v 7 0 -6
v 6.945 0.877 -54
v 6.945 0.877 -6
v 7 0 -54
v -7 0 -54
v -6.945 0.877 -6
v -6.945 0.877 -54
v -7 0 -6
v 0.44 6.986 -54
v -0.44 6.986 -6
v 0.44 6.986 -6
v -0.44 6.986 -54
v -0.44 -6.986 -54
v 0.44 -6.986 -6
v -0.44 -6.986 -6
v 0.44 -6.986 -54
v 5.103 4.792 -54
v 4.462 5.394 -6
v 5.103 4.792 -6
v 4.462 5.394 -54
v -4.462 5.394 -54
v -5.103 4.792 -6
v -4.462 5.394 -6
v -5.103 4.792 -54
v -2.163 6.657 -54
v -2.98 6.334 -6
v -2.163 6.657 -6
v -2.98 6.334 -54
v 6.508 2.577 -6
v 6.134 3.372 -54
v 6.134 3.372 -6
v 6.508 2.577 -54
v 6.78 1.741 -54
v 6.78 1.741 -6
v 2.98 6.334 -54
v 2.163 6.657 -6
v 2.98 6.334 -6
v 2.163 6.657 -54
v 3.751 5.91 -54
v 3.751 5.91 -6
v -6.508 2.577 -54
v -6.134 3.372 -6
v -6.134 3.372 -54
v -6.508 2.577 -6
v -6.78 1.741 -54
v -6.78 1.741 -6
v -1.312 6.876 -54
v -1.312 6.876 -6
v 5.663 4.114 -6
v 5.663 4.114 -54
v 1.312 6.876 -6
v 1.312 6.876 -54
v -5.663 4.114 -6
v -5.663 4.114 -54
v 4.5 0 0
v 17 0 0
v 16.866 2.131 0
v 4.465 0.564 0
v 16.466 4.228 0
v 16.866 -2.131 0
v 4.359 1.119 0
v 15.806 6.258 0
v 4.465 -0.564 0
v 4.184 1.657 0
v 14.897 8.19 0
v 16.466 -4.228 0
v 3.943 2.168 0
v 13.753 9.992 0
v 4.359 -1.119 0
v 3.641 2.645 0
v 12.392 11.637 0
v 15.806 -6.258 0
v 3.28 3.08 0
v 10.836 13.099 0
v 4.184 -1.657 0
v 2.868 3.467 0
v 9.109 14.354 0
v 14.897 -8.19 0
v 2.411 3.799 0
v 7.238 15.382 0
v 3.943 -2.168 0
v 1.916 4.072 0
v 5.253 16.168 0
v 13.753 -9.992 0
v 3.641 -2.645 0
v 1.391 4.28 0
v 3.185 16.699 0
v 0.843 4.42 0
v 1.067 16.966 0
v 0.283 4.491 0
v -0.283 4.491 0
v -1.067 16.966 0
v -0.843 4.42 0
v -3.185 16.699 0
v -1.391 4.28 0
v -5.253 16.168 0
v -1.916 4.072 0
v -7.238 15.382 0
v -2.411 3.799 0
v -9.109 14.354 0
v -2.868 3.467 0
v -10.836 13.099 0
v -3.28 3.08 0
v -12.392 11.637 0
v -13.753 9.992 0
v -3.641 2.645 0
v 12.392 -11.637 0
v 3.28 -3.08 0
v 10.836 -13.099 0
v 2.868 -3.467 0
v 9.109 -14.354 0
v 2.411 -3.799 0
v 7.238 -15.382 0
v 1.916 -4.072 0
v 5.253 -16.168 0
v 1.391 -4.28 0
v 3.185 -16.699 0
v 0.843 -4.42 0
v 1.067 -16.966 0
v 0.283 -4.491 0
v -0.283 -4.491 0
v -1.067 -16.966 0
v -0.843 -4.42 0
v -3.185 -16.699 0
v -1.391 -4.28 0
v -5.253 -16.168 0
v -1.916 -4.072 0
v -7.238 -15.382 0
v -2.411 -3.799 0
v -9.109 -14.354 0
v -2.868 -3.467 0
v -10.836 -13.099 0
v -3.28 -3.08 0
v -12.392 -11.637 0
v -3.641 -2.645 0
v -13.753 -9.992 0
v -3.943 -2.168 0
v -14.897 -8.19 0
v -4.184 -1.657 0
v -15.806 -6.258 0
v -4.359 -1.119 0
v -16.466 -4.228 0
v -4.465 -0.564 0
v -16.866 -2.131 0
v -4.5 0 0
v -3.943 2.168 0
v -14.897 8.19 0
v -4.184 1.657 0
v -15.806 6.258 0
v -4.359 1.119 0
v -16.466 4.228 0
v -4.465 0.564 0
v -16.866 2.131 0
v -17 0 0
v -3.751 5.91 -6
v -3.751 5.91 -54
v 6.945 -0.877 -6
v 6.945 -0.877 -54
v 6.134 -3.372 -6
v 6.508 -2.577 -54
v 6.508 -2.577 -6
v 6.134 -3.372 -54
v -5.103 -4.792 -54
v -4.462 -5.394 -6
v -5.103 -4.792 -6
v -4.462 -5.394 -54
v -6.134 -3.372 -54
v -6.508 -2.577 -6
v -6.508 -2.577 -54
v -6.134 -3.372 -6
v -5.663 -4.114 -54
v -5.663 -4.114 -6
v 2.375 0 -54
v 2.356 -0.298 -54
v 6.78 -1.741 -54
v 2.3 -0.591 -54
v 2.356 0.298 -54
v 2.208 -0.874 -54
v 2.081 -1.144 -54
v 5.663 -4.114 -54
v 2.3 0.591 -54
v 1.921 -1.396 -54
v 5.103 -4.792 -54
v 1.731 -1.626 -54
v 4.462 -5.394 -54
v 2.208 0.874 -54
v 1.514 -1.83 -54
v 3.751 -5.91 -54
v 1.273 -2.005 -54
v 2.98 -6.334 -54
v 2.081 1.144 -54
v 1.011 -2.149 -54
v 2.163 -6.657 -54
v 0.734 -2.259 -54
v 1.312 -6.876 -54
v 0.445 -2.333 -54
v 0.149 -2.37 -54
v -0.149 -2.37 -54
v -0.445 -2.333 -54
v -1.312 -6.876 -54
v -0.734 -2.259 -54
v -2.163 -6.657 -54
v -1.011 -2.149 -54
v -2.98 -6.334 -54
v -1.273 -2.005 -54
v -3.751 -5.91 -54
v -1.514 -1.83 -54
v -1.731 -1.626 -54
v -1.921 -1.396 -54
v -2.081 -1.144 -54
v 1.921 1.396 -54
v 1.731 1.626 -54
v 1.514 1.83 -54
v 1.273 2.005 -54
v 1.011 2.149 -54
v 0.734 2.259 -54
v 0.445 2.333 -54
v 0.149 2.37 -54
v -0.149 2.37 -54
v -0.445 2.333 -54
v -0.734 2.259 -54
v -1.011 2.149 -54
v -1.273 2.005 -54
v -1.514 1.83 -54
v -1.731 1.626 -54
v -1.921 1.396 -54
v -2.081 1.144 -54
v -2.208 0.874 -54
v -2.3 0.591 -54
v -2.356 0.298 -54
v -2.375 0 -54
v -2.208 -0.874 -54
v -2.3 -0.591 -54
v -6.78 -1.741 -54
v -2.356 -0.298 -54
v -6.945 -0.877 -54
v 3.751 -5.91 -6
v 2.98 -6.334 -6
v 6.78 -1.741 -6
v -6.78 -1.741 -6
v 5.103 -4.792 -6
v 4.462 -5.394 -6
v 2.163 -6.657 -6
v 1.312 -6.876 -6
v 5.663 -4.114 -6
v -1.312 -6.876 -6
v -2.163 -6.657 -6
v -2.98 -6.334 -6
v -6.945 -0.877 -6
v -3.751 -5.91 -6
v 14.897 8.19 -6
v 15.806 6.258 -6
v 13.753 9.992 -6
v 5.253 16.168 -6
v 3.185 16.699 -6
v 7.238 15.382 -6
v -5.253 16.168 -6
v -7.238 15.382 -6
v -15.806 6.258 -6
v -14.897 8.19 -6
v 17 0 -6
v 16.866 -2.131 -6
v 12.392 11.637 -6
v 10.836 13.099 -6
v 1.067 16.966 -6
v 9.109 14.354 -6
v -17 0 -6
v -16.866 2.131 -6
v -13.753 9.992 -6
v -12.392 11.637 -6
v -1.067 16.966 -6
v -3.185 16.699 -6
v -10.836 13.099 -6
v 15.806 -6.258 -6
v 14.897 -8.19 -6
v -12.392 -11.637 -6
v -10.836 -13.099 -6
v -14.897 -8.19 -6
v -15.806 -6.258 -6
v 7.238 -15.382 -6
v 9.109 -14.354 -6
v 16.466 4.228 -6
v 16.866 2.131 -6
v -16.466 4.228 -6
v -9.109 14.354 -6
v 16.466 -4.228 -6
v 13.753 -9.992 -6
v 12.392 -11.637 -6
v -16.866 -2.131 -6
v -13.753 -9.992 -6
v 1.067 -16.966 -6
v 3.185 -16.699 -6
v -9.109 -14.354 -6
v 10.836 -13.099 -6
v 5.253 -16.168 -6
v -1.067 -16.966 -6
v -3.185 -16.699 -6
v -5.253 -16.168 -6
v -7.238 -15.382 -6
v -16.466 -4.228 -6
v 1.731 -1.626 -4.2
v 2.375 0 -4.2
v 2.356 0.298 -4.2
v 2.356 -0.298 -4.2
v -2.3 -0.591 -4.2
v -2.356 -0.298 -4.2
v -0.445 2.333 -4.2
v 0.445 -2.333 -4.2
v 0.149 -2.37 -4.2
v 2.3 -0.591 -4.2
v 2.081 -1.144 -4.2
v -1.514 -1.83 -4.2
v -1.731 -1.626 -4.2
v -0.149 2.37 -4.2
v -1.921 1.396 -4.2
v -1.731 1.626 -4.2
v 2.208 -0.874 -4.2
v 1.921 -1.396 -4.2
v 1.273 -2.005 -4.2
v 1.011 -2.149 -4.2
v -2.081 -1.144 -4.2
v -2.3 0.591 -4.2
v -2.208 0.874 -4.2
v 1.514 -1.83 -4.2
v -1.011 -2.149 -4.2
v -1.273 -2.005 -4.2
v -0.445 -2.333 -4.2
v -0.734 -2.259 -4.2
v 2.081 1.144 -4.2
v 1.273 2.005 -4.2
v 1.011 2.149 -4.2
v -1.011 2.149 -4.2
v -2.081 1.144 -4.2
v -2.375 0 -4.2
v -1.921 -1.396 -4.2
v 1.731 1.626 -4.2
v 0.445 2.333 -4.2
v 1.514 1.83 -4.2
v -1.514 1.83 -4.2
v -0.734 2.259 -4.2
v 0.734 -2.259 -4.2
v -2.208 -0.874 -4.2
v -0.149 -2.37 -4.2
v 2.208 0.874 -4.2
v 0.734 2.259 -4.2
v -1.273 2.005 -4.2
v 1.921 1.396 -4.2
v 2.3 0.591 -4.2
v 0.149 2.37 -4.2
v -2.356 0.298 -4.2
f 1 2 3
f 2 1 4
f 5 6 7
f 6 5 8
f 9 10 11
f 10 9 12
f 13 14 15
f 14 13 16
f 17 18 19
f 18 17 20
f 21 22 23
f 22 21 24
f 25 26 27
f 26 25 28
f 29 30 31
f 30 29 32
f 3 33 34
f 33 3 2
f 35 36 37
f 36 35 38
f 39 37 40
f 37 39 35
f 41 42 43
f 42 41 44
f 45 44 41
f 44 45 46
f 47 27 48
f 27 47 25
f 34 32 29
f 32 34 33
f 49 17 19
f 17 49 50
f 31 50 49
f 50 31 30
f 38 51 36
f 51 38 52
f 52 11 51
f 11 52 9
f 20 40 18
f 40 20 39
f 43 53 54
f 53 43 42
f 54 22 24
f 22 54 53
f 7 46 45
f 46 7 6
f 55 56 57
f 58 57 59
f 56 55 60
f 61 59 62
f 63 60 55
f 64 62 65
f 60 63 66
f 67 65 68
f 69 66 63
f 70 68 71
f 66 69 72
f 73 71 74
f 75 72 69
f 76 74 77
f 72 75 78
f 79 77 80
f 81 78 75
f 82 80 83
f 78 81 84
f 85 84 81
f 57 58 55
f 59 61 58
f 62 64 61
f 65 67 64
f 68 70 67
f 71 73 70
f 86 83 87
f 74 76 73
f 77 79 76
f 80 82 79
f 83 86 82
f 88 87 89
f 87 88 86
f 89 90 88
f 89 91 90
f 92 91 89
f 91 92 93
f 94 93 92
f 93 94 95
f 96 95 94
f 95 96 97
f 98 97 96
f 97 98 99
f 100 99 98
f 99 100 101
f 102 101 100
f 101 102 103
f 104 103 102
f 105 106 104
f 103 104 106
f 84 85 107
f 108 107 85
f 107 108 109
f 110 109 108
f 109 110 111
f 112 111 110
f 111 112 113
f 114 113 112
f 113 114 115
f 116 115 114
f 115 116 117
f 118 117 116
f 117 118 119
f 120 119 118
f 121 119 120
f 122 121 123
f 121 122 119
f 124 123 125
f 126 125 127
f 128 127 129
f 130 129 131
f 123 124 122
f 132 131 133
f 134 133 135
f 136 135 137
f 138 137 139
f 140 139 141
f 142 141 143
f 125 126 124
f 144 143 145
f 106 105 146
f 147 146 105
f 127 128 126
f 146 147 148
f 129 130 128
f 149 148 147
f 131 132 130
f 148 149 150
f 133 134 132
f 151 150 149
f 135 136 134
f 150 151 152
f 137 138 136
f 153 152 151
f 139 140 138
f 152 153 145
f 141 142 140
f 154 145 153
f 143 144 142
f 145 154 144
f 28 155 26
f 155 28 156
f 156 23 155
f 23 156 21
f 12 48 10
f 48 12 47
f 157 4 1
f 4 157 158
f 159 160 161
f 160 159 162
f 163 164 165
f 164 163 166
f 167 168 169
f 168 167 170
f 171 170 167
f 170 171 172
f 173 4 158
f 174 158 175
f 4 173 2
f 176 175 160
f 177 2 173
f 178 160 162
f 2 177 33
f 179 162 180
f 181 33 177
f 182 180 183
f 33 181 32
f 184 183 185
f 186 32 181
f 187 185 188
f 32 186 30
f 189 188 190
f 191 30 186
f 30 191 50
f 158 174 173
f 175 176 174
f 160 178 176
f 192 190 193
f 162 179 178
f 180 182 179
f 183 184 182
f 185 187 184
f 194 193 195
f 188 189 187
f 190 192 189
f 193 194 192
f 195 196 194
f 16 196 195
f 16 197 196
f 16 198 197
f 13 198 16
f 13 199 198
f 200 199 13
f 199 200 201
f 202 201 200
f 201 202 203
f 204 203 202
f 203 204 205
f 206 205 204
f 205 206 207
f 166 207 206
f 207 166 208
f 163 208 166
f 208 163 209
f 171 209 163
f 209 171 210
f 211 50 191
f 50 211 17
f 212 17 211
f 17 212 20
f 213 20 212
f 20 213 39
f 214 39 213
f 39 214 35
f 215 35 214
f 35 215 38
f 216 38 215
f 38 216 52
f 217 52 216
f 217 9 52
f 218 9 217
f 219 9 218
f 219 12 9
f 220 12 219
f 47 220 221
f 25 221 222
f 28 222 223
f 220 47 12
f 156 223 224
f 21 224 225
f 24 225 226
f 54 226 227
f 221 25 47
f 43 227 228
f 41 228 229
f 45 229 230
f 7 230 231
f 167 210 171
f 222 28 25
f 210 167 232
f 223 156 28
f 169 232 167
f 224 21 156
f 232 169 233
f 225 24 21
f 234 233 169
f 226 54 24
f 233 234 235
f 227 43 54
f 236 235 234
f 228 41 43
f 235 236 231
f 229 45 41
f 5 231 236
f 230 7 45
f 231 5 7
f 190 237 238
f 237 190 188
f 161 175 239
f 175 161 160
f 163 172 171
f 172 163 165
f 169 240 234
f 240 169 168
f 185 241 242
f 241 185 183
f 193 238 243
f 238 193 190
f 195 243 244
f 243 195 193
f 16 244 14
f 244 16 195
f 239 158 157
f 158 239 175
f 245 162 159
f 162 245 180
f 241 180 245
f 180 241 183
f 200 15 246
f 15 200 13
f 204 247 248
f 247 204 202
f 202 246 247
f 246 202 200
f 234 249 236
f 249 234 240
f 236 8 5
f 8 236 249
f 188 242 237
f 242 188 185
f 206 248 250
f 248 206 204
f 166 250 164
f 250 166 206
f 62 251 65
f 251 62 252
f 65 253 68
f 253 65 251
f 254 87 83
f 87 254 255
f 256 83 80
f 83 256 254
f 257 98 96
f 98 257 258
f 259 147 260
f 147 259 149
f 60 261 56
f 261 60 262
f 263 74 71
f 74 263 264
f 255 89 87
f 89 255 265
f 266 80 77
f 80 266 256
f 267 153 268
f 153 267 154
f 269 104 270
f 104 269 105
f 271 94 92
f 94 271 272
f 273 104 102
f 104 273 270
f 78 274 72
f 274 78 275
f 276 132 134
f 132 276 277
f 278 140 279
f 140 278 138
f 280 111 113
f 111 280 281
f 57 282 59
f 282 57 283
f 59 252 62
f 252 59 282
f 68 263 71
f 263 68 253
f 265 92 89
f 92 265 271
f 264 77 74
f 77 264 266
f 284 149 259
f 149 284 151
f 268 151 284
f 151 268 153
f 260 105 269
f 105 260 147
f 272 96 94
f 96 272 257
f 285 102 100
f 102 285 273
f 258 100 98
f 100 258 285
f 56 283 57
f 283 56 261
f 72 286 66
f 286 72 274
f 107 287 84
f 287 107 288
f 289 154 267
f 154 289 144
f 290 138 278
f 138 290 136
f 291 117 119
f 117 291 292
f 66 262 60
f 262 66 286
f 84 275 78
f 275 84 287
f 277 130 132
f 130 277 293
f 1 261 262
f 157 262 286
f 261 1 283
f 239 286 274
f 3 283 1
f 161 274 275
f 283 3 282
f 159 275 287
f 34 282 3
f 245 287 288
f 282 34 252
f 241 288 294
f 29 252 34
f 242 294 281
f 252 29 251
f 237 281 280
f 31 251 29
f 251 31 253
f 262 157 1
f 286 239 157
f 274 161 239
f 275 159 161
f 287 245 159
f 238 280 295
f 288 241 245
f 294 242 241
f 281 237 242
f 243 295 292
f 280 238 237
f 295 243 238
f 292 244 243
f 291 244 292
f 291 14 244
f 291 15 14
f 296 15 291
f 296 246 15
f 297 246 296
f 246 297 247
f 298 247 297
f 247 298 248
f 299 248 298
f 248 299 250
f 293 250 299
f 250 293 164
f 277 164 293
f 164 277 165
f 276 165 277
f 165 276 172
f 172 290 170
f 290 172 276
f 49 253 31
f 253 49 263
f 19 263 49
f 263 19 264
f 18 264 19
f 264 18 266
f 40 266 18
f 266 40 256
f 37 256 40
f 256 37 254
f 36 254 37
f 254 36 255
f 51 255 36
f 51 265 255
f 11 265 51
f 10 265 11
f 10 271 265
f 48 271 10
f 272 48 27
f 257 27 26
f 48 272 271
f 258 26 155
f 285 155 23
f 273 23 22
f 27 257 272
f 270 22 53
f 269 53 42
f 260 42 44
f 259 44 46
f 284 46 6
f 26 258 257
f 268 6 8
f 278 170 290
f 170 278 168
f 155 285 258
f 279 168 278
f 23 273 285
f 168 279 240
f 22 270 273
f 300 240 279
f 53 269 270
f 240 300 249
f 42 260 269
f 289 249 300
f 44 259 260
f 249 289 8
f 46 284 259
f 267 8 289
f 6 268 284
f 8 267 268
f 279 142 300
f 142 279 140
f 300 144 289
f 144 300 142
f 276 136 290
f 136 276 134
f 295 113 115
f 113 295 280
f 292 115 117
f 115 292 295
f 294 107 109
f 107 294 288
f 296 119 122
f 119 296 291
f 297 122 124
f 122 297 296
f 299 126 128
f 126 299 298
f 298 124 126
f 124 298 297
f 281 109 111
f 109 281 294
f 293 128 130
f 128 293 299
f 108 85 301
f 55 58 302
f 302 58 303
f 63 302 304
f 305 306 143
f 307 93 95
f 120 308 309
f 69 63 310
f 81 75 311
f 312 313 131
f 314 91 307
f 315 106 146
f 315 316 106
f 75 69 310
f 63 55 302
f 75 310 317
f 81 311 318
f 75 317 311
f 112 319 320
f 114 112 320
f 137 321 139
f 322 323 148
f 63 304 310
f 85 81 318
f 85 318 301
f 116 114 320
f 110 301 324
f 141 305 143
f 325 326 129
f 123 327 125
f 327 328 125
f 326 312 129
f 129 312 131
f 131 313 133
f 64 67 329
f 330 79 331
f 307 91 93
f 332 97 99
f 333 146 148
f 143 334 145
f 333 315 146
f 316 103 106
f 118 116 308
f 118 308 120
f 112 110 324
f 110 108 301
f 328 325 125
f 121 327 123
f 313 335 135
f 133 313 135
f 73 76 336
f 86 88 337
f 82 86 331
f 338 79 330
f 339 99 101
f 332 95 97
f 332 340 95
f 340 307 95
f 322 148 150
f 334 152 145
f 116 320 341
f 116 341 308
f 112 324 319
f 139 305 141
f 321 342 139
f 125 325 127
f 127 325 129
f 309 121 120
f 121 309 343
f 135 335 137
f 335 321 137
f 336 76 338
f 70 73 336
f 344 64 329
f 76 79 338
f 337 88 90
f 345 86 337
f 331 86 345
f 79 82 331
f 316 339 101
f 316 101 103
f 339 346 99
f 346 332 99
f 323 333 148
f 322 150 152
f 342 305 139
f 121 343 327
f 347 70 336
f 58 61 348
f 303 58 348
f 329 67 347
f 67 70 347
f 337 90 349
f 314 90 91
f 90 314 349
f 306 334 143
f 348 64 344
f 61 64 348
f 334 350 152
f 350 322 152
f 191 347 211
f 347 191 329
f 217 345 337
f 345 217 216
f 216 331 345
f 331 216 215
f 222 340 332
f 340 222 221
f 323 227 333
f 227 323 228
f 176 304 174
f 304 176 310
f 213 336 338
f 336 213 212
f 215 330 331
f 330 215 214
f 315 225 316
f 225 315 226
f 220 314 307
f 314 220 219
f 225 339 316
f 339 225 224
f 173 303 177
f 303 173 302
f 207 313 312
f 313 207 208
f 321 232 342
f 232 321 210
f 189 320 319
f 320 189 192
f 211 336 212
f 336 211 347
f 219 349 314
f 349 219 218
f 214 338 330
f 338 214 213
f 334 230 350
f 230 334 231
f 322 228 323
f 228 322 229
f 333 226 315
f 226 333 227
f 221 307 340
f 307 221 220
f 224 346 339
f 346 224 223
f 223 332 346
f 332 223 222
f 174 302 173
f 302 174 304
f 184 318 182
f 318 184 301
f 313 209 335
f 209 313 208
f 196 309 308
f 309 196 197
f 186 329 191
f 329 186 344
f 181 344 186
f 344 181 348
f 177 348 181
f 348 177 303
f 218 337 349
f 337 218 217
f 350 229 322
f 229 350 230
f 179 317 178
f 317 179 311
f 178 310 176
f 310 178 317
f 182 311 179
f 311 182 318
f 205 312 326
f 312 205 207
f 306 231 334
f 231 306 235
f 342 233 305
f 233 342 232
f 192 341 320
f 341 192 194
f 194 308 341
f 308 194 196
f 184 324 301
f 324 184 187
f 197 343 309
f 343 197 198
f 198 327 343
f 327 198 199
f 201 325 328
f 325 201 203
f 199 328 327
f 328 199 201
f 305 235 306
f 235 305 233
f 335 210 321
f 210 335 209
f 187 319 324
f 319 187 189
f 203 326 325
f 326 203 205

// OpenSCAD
$fn = 50;


difference() {
	union() {
		translate(v = [0, 0, -54.0000000000]) {
			cylinder(h = 54, r = 7.0000000000);
		}
		translate(v = [0, 0, -6.0000000000]) {
			cylinder(h = 6, r = 17.0000000000);
		}
	}
	union() {
		translate(v = [0, 0, 0]) {
			rotate(a = [0, 0, 0]) {
				difference() {
					union() {
						#translate(v = [0, 0, -54.0000000000]) {
							cylinder(h = 54, r = 2.2500000000);
						}
						#translate(v = [0, 0, -4.2000000000]) {
							cylinder(h = 4.2000000000, r = 7.0000000000, r1 = 2.3750000000, r2 = 4.5000000000);
						}
						#translate(v = [0, 0, -54.0000000000]) {
							cylinder(h = 54, r = 2.3750000000);
						}
						#translate(v = [0, 0, -54.0000000000]) {
							cylinder(h = 54, r = 2.2500000000);
						}
					}
					union();
				}
			}
		}
	}
}
